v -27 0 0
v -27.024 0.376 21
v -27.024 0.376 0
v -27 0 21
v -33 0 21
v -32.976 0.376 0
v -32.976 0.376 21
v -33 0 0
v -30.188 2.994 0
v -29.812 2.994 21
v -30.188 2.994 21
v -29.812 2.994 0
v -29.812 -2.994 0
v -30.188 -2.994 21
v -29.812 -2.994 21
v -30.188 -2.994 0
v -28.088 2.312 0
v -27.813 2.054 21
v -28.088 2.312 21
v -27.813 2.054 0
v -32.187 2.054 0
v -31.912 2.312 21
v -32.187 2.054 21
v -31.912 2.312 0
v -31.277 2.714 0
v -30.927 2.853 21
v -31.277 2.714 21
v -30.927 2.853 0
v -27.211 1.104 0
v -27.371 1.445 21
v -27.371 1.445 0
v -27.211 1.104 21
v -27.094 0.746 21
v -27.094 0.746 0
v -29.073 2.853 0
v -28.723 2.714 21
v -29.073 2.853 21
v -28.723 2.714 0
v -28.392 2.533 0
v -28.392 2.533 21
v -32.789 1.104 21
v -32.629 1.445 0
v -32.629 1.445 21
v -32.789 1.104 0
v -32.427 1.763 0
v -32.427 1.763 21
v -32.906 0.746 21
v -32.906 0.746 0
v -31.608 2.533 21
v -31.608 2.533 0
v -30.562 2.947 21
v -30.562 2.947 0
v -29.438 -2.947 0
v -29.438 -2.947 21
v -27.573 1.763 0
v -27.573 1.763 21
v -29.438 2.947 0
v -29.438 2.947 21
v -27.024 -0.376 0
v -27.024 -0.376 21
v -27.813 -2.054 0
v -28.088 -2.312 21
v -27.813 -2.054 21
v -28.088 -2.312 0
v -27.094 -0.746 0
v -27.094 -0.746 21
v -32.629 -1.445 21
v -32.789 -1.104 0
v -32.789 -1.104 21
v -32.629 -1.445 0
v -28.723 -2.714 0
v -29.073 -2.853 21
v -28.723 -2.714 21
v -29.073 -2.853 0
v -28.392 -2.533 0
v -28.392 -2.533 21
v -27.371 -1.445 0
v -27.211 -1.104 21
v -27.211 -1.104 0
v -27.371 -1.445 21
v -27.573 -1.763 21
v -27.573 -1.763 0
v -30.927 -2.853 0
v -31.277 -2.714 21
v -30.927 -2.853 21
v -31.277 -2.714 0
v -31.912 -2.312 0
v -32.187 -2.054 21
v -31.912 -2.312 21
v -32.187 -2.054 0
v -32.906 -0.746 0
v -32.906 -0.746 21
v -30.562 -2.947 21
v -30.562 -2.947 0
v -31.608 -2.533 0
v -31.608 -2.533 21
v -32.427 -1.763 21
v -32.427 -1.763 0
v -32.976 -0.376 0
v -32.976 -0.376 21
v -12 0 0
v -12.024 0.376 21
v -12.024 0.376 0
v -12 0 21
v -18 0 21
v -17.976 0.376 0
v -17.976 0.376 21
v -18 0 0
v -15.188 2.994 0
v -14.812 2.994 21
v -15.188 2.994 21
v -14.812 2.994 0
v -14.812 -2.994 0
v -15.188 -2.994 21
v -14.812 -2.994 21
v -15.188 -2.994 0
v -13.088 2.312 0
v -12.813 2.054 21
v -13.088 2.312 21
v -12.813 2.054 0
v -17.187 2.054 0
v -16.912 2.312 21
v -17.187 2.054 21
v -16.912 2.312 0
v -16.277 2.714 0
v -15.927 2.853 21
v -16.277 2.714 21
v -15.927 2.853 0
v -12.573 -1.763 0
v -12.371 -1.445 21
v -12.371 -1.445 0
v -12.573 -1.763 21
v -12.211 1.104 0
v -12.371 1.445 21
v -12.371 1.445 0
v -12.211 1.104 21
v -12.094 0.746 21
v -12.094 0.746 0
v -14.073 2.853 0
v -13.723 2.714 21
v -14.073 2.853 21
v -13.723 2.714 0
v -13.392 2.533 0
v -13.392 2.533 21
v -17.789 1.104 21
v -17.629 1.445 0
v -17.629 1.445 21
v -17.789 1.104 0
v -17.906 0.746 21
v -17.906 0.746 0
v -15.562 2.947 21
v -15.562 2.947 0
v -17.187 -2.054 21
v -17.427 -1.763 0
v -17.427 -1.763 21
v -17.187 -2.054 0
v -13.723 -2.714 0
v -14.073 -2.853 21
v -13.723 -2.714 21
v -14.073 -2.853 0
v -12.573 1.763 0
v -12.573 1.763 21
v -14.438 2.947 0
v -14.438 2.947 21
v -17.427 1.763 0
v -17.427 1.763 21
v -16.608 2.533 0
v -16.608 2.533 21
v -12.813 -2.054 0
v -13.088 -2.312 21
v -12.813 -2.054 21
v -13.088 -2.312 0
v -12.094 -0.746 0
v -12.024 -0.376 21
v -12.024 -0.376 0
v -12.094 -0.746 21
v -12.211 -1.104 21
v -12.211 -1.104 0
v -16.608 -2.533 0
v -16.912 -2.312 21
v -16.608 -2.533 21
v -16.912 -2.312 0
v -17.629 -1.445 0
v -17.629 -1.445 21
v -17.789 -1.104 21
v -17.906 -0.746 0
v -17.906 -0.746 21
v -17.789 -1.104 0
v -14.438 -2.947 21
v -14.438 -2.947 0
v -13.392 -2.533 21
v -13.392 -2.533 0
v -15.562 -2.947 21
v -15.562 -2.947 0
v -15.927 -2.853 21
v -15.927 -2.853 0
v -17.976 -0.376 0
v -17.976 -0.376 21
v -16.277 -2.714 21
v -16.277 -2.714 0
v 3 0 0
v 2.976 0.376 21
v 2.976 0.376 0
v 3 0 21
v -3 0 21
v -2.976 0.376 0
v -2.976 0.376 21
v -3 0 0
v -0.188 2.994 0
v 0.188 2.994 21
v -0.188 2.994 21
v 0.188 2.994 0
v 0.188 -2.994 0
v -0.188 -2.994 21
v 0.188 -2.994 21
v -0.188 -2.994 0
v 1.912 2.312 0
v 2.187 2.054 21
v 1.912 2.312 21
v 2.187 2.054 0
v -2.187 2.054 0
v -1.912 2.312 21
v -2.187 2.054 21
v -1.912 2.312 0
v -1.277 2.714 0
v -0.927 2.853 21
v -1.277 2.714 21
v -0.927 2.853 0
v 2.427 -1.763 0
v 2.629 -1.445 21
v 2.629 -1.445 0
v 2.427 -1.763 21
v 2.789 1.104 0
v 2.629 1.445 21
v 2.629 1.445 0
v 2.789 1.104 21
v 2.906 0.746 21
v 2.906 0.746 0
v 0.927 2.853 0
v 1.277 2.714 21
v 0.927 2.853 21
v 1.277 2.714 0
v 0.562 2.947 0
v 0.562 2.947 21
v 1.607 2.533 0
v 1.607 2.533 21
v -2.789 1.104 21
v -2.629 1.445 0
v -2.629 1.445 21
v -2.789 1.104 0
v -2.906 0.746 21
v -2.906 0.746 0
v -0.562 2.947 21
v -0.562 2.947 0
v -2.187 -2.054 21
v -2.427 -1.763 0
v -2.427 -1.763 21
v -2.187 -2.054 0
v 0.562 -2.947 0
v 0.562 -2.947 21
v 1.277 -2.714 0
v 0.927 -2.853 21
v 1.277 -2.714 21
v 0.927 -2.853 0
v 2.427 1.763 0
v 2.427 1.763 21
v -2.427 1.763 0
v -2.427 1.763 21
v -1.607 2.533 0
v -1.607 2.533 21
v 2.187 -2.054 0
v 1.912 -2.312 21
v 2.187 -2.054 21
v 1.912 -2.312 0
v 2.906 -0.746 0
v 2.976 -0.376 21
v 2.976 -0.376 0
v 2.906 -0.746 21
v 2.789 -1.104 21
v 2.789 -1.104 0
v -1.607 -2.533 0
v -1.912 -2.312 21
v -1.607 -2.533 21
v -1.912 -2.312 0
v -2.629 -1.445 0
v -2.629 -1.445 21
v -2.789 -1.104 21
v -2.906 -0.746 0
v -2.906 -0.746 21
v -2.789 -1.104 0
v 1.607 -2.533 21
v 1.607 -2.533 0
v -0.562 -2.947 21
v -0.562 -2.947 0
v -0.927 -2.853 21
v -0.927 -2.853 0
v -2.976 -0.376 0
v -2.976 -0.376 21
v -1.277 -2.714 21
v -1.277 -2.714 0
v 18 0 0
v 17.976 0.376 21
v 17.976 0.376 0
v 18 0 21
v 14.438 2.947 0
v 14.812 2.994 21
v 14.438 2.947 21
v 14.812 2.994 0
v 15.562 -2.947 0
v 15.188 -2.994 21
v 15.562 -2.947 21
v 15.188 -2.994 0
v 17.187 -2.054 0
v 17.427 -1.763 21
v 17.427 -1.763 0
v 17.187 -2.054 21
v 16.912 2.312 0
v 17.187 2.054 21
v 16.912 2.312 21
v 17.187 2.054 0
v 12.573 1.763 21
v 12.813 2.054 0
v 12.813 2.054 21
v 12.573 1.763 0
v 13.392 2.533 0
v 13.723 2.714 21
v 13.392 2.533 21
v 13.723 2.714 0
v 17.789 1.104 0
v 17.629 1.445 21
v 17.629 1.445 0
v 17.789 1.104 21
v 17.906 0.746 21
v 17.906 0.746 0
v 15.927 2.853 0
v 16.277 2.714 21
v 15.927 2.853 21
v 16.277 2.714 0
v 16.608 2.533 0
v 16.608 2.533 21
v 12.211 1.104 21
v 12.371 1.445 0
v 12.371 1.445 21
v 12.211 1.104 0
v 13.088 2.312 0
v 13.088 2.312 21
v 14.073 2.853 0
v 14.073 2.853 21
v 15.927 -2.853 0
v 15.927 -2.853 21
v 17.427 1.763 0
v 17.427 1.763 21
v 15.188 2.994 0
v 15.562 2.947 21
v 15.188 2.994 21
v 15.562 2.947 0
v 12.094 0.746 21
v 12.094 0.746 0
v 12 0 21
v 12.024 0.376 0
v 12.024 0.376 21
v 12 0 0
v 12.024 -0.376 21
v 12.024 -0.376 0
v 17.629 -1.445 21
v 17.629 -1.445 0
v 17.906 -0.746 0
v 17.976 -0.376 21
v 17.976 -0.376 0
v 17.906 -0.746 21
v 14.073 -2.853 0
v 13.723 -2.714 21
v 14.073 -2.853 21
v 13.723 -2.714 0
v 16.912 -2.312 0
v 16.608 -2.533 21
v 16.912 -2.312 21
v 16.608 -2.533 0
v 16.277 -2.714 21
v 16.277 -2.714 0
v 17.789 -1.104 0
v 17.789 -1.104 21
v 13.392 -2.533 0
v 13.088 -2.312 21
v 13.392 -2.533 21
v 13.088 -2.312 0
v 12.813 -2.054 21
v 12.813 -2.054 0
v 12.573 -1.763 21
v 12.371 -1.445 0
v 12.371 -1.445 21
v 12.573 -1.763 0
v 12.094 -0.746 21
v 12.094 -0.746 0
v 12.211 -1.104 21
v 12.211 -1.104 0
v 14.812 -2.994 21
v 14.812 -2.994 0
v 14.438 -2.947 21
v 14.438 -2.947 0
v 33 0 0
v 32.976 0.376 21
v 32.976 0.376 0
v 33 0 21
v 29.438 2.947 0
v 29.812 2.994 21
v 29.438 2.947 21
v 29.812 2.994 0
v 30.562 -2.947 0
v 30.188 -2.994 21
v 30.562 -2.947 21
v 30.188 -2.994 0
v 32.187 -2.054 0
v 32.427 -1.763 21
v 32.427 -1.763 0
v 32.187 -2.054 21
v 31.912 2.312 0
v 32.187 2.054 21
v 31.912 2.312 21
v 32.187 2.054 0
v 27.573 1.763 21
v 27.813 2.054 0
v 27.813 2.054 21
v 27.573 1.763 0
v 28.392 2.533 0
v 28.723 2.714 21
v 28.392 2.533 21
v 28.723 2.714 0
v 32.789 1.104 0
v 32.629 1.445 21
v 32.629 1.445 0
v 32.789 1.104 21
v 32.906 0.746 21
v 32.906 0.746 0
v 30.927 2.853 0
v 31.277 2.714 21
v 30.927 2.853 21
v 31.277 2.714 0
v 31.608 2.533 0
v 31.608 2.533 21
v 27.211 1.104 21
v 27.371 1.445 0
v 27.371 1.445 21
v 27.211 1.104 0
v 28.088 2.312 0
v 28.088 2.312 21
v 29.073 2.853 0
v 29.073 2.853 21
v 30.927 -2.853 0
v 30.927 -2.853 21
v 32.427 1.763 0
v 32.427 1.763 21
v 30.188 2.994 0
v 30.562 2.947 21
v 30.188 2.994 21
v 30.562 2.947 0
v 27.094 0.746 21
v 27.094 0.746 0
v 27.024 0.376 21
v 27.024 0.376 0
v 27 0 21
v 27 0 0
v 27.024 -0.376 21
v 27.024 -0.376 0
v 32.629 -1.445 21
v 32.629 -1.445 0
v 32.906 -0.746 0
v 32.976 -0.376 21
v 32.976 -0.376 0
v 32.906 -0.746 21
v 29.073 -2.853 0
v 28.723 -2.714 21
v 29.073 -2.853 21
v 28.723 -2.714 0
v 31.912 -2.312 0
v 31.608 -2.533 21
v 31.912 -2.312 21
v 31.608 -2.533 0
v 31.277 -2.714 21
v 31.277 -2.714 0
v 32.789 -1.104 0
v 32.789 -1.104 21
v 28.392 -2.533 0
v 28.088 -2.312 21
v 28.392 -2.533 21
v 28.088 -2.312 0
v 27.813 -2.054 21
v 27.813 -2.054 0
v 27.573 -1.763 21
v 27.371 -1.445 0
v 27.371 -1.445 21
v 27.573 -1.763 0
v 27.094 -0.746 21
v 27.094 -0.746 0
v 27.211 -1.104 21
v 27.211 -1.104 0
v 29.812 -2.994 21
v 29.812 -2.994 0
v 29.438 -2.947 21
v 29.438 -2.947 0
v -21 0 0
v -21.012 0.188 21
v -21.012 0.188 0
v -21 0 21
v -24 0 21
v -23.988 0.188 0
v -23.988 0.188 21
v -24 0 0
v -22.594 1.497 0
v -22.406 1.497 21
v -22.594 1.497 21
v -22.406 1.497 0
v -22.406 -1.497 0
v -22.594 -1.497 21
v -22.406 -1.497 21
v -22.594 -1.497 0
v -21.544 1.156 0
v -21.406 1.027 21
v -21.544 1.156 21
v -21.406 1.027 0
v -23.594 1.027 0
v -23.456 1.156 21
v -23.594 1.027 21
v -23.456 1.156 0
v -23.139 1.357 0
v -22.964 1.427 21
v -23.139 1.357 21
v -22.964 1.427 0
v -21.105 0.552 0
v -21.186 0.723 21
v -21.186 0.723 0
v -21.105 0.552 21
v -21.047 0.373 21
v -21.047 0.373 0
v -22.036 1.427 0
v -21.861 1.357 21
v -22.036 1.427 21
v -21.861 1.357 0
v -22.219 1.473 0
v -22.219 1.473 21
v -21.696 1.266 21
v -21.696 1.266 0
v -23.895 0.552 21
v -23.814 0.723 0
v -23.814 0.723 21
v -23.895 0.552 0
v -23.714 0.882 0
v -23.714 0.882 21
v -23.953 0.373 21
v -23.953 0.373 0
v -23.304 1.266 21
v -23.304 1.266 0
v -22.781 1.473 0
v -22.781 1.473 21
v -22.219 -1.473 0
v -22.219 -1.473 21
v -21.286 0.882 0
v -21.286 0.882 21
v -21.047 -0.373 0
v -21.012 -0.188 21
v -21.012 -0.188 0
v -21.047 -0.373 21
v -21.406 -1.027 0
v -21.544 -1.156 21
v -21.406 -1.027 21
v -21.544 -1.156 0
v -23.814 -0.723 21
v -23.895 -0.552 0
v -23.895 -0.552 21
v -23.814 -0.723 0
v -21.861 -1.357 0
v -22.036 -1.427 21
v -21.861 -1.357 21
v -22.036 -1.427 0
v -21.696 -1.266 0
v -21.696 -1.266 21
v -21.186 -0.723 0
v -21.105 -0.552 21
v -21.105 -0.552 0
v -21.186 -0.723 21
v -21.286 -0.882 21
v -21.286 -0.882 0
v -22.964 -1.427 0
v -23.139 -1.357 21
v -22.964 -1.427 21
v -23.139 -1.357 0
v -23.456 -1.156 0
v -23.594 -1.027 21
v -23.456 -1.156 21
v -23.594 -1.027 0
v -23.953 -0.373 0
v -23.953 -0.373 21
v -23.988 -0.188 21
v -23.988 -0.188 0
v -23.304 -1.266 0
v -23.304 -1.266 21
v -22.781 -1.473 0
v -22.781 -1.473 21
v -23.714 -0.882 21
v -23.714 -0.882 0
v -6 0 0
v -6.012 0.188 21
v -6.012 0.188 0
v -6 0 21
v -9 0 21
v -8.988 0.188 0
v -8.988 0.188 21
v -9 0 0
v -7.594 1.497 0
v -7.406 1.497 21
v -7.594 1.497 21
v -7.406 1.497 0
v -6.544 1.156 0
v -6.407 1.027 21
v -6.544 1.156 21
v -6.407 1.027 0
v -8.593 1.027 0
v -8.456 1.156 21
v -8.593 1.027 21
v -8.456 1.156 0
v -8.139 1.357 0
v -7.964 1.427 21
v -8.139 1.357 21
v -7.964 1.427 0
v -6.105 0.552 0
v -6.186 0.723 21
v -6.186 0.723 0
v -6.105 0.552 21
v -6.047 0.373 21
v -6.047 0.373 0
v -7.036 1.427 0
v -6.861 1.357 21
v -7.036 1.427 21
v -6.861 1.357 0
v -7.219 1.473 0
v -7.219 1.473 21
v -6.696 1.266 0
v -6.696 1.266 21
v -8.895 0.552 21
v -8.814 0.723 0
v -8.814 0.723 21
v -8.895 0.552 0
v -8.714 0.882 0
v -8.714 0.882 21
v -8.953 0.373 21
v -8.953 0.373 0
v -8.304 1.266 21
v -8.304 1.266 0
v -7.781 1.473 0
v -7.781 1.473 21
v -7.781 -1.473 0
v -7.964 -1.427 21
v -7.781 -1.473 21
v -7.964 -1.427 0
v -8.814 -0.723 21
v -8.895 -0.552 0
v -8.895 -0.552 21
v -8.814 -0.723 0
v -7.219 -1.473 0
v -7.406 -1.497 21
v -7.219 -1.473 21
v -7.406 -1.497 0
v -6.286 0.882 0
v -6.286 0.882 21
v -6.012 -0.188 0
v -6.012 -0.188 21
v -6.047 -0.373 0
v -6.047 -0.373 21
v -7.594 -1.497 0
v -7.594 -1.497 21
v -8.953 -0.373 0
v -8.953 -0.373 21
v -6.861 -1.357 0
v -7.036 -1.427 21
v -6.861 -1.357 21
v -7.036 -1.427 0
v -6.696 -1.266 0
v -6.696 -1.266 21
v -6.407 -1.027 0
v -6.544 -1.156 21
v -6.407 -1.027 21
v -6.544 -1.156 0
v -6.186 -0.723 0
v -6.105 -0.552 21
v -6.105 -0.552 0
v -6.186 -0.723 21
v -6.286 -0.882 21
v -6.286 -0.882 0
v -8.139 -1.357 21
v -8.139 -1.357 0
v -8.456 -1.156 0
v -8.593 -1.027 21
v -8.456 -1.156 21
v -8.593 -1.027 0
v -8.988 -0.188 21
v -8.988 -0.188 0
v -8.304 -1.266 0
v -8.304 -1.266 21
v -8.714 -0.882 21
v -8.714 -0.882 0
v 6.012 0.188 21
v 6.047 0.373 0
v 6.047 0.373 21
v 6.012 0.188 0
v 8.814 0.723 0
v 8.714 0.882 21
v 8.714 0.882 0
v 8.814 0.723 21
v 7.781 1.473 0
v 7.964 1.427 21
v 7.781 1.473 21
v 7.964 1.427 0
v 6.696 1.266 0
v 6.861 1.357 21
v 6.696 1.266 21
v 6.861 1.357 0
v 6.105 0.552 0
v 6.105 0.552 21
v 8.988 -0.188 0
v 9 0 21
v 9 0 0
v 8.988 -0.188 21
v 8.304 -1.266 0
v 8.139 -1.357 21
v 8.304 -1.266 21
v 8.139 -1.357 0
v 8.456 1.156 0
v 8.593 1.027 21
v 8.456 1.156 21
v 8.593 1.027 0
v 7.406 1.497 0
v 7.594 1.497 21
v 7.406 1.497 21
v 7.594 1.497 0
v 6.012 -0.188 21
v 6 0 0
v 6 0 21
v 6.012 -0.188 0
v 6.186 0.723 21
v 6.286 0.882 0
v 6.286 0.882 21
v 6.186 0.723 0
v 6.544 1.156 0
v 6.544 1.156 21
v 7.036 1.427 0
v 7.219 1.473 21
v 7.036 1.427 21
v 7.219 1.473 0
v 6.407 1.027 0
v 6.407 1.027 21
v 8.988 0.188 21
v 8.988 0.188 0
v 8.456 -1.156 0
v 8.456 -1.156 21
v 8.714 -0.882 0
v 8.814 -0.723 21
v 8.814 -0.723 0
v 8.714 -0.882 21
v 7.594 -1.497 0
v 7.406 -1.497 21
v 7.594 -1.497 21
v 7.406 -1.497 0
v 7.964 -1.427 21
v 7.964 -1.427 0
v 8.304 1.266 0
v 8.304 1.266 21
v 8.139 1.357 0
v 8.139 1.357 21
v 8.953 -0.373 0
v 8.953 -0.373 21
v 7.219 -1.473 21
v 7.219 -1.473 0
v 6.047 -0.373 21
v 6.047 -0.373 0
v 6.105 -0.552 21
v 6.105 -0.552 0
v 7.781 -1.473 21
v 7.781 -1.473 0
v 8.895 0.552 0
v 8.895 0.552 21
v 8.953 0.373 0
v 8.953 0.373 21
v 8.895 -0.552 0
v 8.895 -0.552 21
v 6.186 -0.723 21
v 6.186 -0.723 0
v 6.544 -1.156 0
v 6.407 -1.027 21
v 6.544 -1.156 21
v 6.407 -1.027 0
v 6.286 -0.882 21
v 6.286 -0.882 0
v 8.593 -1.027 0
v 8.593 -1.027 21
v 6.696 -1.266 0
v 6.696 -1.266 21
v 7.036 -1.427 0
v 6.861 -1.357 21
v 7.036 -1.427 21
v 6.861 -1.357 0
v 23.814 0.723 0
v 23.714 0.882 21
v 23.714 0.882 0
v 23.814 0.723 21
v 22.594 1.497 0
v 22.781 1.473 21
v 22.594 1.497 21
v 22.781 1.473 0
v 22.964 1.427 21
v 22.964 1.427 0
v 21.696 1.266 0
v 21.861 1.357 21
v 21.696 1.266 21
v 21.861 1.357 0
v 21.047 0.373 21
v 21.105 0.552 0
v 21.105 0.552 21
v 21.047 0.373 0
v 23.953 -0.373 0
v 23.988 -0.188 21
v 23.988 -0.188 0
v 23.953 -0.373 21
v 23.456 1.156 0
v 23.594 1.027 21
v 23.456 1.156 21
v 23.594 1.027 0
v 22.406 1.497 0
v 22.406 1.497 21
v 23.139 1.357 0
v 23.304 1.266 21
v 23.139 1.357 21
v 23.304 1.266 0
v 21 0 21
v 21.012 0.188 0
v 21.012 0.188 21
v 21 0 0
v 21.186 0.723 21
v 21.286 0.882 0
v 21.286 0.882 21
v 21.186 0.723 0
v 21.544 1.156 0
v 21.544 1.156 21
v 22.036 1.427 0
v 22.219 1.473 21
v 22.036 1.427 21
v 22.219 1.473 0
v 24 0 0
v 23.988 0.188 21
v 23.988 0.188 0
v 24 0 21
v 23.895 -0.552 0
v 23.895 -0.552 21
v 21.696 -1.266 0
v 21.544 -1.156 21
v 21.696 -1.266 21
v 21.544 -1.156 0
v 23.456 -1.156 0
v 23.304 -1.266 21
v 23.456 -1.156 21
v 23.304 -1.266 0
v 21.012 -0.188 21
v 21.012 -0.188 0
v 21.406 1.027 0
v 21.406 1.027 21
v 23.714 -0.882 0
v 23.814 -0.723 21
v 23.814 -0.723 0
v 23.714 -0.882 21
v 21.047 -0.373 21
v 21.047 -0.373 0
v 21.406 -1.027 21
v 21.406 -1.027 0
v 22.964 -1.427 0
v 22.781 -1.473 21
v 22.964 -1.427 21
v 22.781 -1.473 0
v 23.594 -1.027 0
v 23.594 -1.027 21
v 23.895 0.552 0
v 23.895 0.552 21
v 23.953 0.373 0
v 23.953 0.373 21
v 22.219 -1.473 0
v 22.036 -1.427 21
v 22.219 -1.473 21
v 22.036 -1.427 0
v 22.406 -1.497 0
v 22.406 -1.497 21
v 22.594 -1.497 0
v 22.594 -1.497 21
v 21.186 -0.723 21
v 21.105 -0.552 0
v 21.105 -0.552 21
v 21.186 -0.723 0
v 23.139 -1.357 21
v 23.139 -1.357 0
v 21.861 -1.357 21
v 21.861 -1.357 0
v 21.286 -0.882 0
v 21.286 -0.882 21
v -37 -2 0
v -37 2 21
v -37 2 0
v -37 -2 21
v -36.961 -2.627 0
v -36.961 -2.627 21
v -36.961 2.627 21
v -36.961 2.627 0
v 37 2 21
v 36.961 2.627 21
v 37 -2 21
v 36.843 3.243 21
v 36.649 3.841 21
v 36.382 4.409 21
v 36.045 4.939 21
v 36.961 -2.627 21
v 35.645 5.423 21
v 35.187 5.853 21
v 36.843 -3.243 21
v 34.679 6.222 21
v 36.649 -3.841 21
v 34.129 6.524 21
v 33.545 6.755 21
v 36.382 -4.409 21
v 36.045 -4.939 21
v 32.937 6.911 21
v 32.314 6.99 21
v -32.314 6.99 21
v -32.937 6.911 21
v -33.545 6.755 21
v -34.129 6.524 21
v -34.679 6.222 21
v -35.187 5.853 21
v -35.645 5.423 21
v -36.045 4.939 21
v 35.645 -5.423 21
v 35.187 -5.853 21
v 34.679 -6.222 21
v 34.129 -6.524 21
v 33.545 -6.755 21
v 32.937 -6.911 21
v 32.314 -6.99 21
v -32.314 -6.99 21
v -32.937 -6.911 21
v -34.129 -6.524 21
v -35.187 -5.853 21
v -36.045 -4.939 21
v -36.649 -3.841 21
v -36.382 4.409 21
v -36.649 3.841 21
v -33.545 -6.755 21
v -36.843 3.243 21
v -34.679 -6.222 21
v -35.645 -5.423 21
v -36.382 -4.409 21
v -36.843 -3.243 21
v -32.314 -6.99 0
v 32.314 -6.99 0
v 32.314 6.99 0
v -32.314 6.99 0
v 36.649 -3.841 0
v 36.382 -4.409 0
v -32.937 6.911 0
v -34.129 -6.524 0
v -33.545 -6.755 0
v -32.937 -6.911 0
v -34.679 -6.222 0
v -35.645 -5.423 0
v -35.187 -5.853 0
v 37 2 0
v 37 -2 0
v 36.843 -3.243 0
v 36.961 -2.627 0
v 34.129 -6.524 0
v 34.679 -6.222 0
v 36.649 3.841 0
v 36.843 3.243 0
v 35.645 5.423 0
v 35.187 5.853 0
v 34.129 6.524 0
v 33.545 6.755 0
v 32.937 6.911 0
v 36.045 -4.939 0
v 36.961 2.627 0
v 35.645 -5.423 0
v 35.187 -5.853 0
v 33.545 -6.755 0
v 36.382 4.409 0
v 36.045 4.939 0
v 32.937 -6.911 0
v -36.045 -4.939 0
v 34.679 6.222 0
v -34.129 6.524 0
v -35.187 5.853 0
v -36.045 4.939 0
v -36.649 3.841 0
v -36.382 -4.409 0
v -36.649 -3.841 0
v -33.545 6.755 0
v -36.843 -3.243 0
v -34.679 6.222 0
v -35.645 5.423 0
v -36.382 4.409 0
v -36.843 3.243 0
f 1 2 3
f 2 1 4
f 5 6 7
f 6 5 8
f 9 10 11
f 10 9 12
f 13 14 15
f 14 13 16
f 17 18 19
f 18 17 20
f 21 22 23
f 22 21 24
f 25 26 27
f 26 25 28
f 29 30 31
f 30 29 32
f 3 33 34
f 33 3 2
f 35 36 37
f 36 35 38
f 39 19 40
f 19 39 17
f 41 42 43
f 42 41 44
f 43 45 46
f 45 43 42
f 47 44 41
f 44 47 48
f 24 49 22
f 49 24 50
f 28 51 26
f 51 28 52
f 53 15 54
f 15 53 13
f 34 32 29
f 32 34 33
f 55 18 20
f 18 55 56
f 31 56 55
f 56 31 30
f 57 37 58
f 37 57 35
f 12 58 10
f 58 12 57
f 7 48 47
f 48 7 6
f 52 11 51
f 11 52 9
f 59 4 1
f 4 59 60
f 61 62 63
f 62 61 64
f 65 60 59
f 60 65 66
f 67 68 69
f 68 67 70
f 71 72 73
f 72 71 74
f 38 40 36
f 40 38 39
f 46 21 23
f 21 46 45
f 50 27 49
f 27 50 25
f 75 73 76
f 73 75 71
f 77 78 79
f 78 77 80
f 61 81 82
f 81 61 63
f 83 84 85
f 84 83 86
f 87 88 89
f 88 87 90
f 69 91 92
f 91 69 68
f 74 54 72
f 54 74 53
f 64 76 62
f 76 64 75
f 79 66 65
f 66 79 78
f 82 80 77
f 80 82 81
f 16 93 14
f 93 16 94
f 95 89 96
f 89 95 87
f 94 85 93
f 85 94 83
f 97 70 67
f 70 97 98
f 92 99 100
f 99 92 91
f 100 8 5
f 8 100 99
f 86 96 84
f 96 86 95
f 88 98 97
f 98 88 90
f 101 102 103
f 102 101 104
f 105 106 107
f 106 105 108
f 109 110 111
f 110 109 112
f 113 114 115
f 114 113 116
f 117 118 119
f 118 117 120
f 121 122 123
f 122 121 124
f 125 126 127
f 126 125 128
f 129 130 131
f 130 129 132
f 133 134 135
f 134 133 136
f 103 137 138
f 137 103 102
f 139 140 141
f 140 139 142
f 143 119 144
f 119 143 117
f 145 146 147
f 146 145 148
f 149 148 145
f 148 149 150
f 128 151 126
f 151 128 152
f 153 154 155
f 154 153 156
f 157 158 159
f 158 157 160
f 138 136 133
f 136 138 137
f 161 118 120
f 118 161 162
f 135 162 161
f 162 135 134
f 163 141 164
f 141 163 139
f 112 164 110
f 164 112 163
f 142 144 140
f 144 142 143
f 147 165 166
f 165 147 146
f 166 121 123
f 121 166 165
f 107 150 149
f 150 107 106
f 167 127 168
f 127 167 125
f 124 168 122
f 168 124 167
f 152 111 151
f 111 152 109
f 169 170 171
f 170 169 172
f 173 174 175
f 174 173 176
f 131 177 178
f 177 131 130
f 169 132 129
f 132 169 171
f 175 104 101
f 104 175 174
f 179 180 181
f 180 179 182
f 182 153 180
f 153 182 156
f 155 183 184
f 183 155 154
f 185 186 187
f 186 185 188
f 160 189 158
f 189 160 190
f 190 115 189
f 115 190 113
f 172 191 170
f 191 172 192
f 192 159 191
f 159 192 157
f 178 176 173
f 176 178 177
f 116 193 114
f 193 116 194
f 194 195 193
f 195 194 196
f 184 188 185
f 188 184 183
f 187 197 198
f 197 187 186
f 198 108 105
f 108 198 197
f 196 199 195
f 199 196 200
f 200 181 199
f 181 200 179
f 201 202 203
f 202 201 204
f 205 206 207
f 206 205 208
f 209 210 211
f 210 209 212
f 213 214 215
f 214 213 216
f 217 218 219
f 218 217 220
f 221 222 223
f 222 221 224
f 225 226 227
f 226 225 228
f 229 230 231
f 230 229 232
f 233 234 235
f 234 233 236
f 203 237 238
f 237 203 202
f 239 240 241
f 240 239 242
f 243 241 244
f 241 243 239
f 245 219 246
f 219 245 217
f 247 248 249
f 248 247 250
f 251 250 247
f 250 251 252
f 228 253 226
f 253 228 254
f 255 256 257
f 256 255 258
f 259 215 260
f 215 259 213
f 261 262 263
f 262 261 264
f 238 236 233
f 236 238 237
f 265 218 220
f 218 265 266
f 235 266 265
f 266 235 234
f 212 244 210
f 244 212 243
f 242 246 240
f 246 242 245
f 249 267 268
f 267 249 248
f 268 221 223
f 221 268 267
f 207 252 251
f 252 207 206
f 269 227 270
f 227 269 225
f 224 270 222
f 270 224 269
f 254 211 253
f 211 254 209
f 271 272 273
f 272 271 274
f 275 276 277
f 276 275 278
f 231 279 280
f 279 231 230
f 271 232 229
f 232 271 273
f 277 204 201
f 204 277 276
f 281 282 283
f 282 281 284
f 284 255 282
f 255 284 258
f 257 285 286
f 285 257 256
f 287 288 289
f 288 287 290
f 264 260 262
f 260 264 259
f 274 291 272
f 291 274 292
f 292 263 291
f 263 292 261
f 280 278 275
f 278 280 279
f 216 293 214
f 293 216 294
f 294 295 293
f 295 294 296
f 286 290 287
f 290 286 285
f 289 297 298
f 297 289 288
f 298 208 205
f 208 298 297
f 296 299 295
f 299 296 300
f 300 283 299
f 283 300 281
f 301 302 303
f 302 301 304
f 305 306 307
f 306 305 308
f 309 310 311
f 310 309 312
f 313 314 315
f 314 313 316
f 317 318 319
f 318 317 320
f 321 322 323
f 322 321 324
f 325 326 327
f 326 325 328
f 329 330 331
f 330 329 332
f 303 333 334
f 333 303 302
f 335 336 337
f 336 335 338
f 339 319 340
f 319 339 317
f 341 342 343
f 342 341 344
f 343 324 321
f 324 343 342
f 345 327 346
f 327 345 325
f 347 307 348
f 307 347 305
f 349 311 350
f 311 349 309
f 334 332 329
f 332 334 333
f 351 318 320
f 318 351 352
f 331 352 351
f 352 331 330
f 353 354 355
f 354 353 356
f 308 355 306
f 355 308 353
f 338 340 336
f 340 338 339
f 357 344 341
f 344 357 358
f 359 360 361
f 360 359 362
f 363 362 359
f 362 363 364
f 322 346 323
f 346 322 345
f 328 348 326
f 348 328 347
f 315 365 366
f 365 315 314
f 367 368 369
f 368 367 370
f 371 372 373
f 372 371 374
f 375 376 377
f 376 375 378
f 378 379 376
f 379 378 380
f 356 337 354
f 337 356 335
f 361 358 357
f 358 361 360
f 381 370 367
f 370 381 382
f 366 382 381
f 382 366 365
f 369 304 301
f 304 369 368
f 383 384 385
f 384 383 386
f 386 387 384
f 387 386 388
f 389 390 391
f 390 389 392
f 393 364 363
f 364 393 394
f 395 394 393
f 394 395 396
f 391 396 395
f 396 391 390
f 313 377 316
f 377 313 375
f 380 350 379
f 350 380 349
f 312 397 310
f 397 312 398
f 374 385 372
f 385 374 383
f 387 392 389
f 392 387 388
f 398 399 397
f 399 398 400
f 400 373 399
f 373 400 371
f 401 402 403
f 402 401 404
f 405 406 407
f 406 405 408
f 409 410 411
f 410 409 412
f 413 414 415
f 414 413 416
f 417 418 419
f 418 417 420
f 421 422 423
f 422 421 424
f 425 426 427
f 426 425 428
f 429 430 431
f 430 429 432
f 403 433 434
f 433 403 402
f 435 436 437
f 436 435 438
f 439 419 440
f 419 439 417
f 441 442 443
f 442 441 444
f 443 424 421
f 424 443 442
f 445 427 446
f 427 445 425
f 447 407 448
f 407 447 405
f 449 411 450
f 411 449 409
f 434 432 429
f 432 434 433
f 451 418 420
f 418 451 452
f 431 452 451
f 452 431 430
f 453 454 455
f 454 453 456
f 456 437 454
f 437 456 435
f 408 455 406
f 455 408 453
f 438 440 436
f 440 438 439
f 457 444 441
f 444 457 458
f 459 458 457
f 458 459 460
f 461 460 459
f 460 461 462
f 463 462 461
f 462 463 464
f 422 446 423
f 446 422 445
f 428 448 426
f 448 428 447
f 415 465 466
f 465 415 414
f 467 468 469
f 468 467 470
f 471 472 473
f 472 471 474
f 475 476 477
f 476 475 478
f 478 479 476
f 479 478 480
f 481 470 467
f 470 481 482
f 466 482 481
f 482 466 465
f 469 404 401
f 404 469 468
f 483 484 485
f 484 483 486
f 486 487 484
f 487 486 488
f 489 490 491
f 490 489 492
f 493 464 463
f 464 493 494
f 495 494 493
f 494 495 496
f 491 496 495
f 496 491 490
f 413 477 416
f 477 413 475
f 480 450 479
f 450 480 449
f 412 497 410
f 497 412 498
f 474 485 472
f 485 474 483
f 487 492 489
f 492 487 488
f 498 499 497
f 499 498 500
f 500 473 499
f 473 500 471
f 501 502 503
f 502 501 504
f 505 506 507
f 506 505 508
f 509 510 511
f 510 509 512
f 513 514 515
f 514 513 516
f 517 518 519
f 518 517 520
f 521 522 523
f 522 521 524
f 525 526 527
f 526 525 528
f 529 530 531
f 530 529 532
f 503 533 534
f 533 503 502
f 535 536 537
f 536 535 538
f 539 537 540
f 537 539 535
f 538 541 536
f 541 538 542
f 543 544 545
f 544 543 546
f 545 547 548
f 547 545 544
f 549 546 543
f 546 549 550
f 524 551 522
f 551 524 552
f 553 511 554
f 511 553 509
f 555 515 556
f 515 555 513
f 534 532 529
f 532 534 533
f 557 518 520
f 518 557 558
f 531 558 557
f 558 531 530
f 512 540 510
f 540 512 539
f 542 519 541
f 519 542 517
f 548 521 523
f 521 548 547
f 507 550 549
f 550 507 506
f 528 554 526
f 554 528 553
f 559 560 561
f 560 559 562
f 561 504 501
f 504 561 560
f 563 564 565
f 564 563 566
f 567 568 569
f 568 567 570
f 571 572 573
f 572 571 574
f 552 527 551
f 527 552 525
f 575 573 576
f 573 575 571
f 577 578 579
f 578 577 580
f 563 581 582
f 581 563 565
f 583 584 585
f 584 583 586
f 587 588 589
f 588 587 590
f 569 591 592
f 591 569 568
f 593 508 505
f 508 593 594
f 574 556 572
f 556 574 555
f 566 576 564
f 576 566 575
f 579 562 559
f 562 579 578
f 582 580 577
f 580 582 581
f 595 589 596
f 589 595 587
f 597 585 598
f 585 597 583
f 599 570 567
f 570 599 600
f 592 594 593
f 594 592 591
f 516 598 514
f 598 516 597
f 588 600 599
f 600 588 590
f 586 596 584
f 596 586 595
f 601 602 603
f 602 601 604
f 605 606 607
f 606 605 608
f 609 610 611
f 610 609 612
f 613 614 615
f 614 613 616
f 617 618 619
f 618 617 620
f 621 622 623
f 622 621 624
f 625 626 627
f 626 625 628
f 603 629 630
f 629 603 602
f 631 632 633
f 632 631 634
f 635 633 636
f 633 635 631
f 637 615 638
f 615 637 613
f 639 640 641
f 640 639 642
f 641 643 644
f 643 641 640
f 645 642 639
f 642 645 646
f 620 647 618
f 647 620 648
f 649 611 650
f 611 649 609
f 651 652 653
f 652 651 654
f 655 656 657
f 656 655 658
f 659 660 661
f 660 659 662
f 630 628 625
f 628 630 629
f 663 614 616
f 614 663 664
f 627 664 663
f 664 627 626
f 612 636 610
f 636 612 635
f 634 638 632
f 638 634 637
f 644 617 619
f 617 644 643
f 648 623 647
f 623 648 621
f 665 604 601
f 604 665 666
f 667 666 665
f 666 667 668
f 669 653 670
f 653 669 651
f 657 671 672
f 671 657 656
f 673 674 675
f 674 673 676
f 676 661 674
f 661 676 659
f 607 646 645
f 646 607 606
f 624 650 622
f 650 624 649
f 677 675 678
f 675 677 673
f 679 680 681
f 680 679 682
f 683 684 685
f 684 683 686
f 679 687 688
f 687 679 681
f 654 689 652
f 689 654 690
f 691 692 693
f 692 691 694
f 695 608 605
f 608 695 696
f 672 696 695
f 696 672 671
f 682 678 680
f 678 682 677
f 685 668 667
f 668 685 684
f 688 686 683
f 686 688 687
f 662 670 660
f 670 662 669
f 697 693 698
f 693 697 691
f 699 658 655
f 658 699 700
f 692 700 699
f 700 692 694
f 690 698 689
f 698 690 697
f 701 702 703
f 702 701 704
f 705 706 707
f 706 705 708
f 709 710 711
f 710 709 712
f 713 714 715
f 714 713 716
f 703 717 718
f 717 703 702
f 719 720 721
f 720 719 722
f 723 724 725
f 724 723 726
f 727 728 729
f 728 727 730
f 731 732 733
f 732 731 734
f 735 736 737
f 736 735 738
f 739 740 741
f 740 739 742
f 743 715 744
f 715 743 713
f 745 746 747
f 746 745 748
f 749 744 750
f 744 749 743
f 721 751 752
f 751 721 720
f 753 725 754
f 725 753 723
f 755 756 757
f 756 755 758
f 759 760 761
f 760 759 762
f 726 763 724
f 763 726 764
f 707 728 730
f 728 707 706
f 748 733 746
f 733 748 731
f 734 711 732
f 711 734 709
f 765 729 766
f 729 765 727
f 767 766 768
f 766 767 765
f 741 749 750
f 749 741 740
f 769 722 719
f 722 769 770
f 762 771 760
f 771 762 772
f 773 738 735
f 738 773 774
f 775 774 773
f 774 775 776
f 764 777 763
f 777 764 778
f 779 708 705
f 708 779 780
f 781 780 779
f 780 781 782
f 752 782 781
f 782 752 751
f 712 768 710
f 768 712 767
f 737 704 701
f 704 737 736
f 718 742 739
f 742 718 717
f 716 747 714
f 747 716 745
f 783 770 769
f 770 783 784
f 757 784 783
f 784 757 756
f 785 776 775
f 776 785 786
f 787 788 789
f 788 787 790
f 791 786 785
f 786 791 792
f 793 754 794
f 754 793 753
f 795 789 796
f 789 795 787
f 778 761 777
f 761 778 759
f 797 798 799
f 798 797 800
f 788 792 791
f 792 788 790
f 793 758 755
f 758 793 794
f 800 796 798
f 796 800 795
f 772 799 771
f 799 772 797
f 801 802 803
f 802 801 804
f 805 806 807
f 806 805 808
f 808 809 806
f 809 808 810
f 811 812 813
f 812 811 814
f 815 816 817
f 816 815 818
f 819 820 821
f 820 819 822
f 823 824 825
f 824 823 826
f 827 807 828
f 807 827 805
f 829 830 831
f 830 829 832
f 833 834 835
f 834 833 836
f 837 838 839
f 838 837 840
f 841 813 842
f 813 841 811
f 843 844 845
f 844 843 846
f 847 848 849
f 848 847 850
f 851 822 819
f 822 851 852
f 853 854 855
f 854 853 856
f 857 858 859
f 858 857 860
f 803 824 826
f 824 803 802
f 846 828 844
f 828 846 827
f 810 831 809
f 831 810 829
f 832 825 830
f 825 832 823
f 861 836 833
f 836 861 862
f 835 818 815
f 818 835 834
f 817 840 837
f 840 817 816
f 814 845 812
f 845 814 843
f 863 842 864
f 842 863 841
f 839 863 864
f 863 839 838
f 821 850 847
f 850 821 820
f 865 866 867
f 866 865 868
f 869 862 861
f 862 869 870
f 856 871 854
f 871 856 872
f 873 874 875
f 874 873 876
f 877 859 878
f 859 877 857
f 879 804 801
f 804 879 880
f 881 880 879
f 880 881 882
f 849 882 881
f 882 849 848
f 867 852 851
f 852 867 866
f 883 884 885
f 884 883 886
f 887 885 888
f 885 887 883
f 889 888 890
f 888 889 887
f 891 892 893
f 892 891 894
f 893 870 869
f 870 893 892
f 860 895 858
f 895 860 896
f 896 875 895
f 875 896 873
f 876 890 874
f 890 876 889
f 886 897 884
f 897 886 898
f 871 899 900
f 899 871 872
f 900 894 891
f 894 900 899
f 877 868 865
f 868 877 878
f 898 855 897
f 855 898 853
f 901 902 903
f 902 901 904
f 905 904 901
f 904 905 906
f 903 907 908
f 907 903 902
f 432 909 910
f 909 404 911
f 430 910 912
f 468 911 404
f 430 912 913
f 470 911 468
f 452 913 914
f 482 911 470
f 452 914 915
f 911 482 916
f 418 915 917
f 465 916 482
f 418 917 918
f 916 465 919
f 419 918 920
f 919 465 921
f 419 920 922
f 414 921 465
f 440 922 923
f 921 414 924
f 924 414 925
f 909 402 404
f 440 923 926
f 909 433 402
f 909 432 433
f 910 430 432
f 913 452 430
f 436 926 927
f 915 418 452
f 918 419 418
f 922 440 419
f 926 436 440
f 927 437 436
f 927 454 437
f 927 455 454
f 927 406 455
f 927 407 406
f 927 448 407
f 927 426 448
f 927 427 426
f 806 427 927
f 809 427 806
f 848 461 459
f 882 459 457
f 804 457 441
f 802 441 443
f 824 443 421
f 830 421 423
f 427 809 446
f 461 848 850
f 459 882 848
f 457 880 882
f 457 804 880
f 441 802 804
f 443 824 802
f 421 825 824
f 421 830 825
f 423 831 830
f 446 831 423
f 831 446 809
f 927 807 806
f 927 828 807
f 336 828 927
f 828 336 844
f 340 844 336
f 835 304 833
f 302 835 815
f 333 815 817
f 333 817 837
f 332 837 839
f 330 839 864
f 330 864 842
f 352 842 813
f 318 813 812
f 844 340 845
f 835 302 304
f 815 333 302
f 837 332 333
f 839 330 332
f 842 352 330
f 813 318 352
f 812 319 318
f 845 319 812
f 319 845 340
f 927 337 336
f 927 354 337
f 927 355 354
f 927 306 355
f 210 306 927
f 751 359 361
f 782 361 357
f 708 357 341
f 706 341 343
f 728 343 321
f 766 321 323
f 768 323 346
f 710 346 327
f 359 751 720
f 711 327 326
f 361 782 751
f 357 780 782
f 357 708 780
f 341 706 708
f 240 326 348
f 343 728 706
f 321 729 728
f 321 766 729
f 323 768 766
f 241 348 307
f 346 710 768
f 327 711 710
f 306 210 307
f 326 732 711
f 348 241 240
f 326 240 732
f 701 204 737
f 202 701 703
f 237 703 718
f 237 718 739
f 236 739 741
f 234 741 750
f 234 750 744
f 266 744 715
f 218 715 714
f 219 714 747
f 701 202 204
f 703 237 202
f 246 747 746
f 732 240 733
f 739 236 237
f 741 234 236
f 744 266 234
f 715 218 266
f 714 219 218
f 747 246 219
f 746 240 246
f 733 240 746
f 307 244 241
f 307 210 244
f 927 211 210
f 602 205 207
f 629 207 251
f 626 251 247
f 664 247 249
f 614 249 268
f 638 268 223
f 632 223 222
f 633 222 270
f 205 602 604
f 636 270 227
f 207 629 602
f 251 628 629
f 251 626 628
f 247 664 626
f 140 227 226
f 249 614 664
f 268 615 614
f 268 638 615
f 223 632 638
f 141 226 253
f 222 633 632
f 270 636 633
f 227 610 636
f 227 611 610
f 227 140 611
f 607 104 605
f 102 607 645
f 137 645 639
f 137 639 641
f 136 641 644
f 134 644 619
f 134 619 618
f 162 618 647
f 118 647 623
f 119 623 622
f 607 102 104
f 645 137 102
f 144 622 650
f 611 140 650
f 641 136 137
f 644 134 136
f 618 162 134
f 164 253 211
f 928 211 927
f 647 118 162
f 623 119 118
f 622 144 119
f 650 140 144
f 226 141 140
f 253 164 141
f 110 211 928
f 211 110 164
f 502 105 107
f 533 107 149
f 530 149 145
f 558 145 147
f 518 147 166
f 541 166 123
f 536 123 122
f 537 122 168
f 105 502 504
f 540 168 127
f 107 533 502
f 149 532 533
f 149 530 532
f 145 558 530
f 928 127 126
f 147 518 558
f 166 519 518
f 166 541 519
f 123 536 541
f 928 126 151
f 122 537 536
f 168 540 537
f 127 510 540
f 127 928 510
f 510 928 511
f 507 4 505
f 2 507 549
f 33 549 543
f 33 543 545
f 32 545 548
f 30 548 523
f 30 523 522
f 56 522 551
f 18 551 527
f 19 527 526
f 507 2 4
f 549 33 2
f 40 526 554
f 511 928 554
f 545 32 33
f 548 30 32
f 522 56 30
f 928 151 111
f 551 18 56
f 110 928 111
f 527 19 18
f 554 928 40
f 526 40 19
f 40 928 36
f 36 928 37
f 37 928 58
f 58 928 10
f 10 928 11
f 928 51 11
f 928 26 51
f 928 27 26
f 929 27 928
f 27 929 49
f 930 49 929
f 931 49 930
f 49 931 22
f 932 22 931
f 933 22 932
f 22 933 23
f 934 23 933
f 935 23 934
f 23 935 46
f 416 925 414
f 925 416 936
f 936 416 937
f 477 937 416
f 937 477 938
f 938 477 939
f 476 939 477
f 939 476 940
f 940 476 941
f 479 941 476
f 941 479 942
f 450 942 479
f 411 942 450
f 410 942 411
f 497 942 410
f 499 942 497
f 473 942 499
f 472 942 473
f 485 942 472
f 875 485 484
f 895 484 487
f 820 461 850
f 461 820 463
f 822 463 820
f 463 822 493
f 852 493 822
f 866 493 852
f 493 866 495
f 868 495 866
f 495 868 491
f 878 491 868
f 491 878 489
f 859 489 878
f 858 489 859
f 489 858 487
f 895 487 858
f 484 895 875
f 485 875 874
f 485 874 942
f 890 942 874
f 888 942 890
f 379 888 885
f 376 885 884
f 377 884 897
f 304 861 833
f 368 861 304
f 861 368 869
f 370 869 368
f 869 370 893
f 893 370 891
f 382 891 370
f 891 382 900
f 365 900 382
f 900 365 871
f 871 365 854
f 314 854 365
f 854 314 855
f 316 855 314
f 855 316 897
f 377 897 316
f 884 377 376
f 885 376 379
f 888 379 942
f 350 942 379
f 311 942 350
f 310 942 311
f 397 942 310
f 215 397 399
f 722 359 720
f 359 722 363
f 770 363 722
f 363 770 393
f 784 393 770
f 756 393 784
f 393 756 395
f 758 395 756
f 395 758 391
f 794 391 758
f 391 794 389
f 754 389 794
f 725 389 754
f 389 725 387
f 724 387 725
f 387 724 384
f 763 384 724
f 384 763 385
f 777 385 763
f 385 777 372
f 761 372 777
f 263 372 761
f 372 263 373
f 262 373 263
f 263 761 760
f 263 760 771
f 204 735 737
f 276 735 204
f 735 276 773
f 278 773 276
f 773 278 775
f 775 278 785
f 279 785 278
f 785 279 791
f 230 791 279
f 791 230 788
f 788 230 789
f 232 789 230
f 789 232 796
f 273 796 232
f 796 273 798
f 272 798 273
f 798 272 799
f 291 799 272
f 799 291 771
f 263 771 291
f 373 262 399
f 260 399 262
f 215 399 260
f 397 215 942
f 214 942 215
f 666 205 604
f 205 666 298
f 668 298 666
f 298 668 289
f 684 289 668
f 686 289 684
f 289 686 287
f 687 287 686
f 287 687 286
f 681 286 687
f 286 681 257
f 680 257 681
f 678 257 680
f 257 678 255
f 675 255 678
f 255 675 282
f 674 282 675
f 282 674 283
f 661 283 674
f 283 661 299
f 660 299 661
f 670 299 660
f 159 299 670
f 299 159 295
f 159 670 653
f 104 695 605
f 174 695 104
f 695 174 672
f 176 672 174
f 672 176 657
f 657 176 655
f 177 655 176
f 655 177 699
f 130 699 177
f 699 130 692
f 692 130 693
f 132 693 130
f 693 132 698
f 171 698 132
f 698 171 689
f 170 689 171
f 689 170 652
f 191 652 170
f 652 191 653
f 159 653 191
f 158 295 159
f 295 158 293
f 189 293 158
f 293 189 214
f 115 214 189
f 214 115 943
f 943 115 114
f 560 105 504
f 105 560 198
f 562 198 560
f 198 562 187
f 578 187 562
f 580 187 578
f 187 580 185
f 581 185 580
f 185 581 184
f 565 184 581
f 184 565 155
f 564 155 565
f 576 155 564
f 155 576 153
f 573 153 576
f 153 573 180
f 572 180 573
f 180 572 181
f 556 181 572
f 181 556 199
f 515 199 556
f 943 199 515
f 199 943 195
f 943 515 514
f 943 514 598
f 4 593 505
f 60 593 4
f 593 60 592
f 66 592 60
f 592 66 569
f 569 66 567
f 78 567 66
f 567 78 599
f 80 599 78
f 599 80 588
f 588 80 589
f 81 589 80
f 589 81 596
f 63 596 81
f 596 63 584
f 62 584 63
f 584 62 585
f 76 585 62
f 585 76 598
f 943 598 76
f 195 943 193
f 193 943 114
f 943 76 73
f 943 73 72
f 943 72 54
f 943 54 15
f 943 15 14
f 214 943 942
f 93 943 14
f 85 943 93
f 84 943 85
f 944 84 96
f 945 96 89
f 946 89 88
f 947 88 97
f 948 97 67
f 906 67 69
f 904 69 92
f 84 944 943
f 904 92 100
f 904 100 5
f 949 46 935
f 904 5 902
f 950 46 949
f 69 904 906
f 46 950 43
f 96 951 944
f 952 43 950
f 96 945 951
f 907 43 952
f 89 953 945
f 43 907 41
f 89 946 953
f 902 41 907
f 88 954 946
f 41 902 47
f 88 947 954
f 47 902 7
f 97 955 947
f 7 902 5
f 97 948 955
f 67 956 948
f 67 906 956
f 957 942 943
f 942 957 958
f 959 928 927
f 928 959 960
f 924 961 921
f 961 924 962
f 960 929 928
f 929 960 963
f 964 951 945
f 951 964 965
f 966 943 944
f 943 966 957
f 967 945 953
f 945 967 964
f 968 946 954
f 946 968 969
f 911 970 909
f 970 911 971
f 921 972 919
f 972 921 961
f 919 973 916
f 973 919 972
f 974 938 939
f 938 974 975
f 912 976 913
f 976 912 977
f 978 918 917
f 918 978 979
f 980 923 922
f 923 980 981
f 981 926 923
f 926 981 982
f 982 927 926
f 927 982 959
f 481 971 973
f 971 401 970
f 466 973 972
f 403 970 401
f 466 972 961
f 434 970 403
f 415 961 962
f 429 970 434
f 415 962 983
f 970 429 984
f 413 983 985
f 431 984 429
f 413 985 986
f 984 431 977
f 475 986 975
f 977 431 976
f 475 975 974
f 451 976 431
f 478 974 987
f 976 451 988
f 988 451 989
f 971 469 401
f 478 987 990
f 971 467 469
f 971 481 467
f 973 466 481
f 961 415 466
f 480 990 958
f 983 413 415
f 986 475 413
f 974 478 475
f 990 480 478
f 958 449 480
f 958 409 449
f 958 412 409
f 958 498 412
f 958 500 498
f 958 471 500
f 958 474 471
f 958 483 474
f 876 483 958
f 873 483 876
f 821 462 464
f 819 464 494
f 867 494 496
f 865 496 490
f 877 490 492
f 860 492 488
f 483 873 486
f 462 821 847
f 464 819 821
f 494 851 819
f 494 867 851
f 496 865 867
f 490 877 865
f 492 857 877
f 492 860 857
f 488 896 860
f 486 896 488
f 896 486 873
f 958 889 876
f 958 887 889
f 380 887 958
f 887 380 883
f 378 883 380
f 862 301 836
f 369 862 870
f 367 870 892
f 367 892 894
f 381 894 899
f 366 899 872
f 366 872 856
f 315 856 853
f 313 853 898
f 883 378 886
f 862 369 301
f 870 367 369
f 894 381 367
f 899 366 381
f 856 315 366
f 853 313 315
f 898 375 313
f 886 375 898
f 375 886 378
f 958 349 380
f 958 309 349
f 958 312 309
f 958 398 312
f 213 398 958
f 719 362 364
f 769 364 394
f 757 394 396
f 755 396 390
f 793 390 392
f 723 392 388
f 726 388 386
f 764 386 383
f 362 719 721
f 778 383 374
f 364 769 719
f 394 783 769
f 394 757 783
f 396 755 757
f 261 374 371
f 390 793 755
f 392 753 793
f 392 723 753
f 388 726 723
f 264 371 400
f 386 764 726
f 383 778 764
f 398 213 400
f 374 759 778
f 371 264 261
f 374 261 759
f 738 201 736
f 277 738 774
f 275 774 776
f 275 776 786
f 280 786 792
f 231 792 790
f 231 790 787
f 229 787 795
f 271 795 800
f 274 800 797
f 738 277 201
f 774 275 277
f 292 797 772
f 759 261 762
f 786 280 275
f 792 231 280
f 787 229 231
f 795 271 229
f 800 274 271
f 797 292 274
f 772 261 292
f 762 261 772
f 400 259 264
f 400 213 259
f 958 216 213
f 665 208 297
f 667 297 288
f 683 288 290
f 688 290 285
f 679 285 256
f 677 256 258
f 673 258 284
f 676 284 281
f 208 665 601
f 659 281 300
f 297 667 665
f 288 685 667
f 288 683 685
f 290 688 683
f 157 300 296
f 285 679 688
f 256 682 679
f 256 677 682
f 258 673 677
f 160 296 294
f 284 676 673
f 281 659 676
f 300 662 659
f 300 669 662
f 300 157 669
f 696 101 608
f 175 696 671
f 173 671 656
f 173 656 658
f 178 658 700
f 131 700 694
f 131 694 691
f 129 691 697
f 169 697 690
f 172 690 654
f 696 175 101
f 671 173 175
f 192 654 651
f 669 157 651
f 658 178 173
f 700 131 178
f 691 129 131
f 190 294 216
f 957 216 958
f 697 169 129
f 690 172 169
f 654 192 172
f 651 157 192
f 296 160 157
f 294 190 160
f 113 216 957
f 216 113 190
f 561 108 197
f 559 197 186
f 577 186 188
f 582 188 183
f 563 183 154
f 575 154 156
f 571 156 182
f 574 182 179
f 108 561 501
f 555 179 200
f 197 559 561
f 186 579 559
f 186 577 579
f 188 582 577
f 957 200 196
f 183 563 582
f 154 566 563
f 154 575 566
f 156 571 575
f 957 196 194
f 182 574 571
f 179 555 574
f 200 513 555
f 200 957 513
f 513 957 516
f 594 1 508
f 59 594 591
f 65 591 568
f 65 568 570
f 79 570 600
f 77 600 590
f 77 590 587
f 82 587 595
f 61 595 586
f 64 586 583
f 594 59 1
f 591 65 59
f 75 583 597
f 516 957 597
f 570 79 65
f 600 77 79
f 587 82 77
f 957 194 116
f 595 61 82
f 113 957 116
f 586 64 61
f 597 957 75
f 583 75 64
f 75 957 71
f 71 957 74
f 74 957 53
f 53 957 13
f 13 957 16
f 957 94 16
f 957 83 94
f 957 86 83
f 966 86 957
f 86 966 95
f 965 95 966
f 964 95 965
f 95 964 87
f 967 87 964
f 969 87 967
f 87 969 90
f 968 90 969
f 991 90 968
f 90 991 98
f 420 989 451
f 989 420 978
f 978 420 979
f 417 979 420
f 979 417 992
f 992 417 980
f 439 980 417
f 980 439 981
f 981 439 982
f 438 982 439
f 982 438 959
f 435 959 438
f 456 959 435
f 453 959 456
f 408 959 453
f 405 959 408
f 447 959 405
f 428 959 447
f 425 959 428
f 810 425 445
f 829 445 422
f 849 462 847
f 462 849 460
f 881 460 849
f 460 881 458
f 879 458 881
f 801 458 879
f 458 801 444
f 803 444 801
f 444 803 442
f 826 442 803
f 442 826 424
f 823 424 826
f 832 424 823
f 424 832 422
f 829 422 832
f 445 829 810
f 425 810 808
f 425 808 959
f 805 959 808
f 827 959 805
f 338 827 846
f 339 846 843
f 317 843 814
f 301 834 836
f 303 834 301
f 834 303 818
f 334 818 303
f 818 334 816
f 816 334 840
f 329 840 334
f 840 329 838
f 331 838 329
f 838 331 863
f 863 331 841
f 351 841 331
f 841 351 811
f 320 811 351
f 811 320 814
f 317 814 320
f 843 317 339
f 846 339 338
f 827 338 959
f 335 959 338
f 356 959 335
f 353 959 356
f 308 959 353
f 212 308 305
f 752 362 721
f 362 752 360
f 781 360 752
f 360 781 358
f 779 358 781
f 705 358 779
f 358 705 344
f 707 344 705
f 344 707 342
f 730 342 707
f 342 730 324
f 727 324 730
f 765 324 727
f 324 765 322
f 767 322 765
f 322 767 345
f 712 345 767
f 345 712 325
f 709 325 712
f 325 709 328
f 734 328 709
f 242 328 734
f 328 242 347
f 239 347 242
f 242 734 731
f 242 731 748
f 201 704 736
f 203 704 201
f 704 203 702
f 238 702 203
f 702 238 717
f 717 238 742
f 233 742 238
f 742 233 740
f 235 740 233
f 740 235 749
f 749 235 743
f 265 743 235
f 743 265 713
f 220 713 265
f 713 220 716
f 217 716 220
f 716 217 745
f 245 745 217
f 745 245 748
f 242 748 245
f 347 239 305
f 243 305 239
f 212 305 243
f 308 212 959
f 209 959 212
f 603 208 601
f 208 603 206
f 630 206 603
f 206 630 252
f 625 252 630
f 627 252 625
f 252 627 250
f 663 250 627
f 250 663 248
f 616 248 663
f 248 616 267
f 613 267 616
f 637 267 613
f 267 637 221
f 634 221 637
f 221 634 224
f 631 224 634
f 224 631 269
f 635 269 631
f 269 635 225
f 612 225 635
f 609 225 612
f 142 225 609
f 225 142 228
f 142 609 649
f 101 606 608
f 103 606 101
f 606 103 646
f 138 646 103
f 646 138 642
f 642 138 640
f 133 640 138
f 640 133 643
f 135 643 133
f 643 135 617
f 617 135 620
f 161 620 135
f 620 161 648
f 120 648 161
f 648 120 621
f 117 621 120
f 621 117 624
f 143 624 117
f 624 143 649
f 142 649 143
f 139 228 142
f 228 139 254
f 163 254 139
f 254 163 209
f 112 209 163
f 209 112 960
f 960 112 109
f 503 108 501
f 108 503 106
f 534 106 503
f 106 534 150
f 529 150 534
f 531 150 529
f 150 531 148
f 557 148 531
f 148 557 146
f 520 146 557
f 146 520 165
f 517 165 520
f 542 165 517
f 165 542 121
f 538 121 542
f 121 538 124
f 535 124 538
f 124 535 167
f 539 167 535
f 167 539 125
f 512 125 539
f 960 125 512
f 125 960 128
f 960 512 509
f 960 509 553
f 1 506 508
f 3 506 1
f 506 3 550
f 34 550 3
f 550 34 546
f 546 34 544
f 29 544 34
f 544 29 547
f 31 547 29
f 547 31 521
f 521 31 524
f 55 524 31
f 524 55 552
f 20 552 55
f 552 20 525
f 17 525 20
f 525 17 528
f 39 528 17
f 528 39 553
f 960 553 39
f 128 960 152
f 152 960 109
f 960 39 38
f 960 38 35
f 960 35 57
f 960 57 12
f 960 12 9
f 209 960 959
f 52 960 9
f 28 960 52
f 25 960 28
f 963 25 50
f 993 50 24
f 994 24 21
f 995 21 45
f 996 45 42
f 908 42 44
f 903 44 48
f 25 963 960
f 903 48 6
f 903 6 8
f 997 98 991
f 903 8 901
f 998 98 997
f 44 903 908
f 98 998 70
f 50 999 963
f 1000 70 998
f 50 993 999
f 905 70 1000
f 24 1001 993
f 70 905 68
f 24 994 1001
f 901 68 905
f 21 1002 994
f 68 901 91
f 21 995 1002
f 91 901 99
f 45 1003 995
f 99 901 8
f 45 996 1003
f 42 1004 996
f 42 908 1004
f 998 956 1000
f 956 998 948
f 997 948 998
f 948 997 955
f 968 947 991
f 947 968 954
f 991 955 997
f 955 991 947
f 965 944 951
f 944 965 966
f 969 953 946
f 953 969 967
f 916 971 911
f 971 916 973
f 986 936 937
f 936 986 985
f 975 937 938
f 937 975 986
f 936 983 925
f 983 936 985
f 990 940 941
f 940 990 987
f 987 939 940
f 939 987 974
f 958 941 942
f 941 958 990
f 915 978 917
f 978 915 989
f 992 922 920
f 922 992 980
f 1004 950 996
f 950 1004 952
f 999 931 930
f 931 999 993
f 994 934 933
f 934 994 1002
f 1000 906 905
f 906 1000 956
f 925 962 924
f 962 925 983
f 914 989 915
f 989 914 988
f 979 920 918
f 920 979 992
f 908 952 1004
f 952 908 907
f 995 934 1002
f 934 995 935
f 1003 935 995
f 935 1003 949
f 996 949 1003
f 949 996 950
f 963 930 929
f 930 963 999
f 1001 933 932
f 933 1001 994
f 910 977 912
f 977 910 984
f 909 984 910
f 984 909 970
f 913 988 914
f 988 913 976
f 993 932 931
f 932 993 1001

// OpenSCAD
$fn = 50;


difference() {
	union() {
		*color(alpha = 1.0000000000, c = "gray") {
			translate(v = [0, 7, 0]) {
				linear_extrude(height = 1) {
					text(font = "Arial:style=Bold", halign = "center", size = 4.5000000000, text = "COMMENT plate main", valign = "center");
				}
			}
		}
		hull() {
			translate(v = [-32.0000000000, 2.0000000000, 0]) {
				cylinder(h = 21, r = 5);
			}
			translate(v = [32.0000000000, 2.0000000000, 0]) {
				cylinder(h = 21, r = 5);
			}
			translate(v = [-32.0000000000, -2.0000000000, 0]) {
				cylinder(h = 21, r = 5);
			}
			translate(v = [32.0000000000, -2.0000000000, 0]) {
				cylinder(h = 21, r = 5);
			}
		}
	}
	union() {
		*color(alpha = 1.0000000000, c = "gray") {
			translate(v = [0, 7, 0]) {
				linear_extrude(height = 1) {
					text(font = "Arial:style=Bold", halign = "center", size = 4.5000000000, text = "COMMENT holes main", valign = "center");
				}
			}
		}
		translate(v = [-30.0000000000, 0.0000000000, 0]) {
			translate(v = [0, 0, -100]) {
				cylinder(h = 200, r = 3.0000000000);
			}
		}
		translate(v = [-15.0000000000, 0.0000000000, 0]) {
			translate(v = [0, 0, -100]) {
				cylinder(h = 200, r = 3.0000000000);
			}
		}
		translate(v = [0, 0, -100]) {
			cylinder(h = 200, r = 3.0000000000);
		}
		translate(v = [15.0000000000, 0.0000000000, 0]) {
			translate(v = [0, 0, -100]) {
				cylinder(h = 200, r = 3.0000000000);
			}
		}
		translate(v = [30.0000000000, 0.0000000000, 0]) {
			translate(v = [0, 0, -100]) {
				cylinder(h = 200, r = 3.0000000000);
			}
		}
		translate(v = [-30.0000000000, 0.0000000000, 0]) {
			translate(v = [0, 0, -100]) {
				cylinder(h = 200, r = 1.5000000000);
			}
		}
		translate(v = [-22.5000000000, 0.0000000000, 0]) {
			translate(v = [0, 0, -100]) {
				cylinder(h = 200, r = 1.5000000000);
			}
		}
		translate(v = [-15.0000000000, 0.0000000000, 0]) {
			translate(v = [0, 0, -100]) {
				cylinder(h = 200, r = 1.5000000000);
			}
		}
		translate(v = [-7.5000000000, 0.0000000000, 0]) {
			translate(v = [0, 0, -100]) {
				cylinder(h = 200, r = 1.5000000000);
			}
		}
		translate(v = [0, 0, -100]) {
			cylinder(h = 200, r = 1.5000000000);
		}
		translate(v = [7.5000000000, 0.0000000000, 0]) {
			translate(v = [0, 0, -100]) {
				cylinder(h = 200, r = 1.5000000000);
			}
		}
		translate(v = [15.0000000000, 0.0000000000, 0]) {
			translate(v = [0, 0, -100]) {
				cylinder(h = 200, r = 1.5000000000);
			}
		}
		translate(v = [22.5000000000, 0.0000000000, 0]) {
			translate(v = [0, 0, -100]) {
				cylinder(h = 200, r = 1.5000000000);
			}
		}
		translate(v = [30.0000000000, 0.0000000000, 0]) {
			translate(v = [0, 0, -100]) {
				cylinder(h = 200, r = 1.5000000000);
			}
		}
	}
}
